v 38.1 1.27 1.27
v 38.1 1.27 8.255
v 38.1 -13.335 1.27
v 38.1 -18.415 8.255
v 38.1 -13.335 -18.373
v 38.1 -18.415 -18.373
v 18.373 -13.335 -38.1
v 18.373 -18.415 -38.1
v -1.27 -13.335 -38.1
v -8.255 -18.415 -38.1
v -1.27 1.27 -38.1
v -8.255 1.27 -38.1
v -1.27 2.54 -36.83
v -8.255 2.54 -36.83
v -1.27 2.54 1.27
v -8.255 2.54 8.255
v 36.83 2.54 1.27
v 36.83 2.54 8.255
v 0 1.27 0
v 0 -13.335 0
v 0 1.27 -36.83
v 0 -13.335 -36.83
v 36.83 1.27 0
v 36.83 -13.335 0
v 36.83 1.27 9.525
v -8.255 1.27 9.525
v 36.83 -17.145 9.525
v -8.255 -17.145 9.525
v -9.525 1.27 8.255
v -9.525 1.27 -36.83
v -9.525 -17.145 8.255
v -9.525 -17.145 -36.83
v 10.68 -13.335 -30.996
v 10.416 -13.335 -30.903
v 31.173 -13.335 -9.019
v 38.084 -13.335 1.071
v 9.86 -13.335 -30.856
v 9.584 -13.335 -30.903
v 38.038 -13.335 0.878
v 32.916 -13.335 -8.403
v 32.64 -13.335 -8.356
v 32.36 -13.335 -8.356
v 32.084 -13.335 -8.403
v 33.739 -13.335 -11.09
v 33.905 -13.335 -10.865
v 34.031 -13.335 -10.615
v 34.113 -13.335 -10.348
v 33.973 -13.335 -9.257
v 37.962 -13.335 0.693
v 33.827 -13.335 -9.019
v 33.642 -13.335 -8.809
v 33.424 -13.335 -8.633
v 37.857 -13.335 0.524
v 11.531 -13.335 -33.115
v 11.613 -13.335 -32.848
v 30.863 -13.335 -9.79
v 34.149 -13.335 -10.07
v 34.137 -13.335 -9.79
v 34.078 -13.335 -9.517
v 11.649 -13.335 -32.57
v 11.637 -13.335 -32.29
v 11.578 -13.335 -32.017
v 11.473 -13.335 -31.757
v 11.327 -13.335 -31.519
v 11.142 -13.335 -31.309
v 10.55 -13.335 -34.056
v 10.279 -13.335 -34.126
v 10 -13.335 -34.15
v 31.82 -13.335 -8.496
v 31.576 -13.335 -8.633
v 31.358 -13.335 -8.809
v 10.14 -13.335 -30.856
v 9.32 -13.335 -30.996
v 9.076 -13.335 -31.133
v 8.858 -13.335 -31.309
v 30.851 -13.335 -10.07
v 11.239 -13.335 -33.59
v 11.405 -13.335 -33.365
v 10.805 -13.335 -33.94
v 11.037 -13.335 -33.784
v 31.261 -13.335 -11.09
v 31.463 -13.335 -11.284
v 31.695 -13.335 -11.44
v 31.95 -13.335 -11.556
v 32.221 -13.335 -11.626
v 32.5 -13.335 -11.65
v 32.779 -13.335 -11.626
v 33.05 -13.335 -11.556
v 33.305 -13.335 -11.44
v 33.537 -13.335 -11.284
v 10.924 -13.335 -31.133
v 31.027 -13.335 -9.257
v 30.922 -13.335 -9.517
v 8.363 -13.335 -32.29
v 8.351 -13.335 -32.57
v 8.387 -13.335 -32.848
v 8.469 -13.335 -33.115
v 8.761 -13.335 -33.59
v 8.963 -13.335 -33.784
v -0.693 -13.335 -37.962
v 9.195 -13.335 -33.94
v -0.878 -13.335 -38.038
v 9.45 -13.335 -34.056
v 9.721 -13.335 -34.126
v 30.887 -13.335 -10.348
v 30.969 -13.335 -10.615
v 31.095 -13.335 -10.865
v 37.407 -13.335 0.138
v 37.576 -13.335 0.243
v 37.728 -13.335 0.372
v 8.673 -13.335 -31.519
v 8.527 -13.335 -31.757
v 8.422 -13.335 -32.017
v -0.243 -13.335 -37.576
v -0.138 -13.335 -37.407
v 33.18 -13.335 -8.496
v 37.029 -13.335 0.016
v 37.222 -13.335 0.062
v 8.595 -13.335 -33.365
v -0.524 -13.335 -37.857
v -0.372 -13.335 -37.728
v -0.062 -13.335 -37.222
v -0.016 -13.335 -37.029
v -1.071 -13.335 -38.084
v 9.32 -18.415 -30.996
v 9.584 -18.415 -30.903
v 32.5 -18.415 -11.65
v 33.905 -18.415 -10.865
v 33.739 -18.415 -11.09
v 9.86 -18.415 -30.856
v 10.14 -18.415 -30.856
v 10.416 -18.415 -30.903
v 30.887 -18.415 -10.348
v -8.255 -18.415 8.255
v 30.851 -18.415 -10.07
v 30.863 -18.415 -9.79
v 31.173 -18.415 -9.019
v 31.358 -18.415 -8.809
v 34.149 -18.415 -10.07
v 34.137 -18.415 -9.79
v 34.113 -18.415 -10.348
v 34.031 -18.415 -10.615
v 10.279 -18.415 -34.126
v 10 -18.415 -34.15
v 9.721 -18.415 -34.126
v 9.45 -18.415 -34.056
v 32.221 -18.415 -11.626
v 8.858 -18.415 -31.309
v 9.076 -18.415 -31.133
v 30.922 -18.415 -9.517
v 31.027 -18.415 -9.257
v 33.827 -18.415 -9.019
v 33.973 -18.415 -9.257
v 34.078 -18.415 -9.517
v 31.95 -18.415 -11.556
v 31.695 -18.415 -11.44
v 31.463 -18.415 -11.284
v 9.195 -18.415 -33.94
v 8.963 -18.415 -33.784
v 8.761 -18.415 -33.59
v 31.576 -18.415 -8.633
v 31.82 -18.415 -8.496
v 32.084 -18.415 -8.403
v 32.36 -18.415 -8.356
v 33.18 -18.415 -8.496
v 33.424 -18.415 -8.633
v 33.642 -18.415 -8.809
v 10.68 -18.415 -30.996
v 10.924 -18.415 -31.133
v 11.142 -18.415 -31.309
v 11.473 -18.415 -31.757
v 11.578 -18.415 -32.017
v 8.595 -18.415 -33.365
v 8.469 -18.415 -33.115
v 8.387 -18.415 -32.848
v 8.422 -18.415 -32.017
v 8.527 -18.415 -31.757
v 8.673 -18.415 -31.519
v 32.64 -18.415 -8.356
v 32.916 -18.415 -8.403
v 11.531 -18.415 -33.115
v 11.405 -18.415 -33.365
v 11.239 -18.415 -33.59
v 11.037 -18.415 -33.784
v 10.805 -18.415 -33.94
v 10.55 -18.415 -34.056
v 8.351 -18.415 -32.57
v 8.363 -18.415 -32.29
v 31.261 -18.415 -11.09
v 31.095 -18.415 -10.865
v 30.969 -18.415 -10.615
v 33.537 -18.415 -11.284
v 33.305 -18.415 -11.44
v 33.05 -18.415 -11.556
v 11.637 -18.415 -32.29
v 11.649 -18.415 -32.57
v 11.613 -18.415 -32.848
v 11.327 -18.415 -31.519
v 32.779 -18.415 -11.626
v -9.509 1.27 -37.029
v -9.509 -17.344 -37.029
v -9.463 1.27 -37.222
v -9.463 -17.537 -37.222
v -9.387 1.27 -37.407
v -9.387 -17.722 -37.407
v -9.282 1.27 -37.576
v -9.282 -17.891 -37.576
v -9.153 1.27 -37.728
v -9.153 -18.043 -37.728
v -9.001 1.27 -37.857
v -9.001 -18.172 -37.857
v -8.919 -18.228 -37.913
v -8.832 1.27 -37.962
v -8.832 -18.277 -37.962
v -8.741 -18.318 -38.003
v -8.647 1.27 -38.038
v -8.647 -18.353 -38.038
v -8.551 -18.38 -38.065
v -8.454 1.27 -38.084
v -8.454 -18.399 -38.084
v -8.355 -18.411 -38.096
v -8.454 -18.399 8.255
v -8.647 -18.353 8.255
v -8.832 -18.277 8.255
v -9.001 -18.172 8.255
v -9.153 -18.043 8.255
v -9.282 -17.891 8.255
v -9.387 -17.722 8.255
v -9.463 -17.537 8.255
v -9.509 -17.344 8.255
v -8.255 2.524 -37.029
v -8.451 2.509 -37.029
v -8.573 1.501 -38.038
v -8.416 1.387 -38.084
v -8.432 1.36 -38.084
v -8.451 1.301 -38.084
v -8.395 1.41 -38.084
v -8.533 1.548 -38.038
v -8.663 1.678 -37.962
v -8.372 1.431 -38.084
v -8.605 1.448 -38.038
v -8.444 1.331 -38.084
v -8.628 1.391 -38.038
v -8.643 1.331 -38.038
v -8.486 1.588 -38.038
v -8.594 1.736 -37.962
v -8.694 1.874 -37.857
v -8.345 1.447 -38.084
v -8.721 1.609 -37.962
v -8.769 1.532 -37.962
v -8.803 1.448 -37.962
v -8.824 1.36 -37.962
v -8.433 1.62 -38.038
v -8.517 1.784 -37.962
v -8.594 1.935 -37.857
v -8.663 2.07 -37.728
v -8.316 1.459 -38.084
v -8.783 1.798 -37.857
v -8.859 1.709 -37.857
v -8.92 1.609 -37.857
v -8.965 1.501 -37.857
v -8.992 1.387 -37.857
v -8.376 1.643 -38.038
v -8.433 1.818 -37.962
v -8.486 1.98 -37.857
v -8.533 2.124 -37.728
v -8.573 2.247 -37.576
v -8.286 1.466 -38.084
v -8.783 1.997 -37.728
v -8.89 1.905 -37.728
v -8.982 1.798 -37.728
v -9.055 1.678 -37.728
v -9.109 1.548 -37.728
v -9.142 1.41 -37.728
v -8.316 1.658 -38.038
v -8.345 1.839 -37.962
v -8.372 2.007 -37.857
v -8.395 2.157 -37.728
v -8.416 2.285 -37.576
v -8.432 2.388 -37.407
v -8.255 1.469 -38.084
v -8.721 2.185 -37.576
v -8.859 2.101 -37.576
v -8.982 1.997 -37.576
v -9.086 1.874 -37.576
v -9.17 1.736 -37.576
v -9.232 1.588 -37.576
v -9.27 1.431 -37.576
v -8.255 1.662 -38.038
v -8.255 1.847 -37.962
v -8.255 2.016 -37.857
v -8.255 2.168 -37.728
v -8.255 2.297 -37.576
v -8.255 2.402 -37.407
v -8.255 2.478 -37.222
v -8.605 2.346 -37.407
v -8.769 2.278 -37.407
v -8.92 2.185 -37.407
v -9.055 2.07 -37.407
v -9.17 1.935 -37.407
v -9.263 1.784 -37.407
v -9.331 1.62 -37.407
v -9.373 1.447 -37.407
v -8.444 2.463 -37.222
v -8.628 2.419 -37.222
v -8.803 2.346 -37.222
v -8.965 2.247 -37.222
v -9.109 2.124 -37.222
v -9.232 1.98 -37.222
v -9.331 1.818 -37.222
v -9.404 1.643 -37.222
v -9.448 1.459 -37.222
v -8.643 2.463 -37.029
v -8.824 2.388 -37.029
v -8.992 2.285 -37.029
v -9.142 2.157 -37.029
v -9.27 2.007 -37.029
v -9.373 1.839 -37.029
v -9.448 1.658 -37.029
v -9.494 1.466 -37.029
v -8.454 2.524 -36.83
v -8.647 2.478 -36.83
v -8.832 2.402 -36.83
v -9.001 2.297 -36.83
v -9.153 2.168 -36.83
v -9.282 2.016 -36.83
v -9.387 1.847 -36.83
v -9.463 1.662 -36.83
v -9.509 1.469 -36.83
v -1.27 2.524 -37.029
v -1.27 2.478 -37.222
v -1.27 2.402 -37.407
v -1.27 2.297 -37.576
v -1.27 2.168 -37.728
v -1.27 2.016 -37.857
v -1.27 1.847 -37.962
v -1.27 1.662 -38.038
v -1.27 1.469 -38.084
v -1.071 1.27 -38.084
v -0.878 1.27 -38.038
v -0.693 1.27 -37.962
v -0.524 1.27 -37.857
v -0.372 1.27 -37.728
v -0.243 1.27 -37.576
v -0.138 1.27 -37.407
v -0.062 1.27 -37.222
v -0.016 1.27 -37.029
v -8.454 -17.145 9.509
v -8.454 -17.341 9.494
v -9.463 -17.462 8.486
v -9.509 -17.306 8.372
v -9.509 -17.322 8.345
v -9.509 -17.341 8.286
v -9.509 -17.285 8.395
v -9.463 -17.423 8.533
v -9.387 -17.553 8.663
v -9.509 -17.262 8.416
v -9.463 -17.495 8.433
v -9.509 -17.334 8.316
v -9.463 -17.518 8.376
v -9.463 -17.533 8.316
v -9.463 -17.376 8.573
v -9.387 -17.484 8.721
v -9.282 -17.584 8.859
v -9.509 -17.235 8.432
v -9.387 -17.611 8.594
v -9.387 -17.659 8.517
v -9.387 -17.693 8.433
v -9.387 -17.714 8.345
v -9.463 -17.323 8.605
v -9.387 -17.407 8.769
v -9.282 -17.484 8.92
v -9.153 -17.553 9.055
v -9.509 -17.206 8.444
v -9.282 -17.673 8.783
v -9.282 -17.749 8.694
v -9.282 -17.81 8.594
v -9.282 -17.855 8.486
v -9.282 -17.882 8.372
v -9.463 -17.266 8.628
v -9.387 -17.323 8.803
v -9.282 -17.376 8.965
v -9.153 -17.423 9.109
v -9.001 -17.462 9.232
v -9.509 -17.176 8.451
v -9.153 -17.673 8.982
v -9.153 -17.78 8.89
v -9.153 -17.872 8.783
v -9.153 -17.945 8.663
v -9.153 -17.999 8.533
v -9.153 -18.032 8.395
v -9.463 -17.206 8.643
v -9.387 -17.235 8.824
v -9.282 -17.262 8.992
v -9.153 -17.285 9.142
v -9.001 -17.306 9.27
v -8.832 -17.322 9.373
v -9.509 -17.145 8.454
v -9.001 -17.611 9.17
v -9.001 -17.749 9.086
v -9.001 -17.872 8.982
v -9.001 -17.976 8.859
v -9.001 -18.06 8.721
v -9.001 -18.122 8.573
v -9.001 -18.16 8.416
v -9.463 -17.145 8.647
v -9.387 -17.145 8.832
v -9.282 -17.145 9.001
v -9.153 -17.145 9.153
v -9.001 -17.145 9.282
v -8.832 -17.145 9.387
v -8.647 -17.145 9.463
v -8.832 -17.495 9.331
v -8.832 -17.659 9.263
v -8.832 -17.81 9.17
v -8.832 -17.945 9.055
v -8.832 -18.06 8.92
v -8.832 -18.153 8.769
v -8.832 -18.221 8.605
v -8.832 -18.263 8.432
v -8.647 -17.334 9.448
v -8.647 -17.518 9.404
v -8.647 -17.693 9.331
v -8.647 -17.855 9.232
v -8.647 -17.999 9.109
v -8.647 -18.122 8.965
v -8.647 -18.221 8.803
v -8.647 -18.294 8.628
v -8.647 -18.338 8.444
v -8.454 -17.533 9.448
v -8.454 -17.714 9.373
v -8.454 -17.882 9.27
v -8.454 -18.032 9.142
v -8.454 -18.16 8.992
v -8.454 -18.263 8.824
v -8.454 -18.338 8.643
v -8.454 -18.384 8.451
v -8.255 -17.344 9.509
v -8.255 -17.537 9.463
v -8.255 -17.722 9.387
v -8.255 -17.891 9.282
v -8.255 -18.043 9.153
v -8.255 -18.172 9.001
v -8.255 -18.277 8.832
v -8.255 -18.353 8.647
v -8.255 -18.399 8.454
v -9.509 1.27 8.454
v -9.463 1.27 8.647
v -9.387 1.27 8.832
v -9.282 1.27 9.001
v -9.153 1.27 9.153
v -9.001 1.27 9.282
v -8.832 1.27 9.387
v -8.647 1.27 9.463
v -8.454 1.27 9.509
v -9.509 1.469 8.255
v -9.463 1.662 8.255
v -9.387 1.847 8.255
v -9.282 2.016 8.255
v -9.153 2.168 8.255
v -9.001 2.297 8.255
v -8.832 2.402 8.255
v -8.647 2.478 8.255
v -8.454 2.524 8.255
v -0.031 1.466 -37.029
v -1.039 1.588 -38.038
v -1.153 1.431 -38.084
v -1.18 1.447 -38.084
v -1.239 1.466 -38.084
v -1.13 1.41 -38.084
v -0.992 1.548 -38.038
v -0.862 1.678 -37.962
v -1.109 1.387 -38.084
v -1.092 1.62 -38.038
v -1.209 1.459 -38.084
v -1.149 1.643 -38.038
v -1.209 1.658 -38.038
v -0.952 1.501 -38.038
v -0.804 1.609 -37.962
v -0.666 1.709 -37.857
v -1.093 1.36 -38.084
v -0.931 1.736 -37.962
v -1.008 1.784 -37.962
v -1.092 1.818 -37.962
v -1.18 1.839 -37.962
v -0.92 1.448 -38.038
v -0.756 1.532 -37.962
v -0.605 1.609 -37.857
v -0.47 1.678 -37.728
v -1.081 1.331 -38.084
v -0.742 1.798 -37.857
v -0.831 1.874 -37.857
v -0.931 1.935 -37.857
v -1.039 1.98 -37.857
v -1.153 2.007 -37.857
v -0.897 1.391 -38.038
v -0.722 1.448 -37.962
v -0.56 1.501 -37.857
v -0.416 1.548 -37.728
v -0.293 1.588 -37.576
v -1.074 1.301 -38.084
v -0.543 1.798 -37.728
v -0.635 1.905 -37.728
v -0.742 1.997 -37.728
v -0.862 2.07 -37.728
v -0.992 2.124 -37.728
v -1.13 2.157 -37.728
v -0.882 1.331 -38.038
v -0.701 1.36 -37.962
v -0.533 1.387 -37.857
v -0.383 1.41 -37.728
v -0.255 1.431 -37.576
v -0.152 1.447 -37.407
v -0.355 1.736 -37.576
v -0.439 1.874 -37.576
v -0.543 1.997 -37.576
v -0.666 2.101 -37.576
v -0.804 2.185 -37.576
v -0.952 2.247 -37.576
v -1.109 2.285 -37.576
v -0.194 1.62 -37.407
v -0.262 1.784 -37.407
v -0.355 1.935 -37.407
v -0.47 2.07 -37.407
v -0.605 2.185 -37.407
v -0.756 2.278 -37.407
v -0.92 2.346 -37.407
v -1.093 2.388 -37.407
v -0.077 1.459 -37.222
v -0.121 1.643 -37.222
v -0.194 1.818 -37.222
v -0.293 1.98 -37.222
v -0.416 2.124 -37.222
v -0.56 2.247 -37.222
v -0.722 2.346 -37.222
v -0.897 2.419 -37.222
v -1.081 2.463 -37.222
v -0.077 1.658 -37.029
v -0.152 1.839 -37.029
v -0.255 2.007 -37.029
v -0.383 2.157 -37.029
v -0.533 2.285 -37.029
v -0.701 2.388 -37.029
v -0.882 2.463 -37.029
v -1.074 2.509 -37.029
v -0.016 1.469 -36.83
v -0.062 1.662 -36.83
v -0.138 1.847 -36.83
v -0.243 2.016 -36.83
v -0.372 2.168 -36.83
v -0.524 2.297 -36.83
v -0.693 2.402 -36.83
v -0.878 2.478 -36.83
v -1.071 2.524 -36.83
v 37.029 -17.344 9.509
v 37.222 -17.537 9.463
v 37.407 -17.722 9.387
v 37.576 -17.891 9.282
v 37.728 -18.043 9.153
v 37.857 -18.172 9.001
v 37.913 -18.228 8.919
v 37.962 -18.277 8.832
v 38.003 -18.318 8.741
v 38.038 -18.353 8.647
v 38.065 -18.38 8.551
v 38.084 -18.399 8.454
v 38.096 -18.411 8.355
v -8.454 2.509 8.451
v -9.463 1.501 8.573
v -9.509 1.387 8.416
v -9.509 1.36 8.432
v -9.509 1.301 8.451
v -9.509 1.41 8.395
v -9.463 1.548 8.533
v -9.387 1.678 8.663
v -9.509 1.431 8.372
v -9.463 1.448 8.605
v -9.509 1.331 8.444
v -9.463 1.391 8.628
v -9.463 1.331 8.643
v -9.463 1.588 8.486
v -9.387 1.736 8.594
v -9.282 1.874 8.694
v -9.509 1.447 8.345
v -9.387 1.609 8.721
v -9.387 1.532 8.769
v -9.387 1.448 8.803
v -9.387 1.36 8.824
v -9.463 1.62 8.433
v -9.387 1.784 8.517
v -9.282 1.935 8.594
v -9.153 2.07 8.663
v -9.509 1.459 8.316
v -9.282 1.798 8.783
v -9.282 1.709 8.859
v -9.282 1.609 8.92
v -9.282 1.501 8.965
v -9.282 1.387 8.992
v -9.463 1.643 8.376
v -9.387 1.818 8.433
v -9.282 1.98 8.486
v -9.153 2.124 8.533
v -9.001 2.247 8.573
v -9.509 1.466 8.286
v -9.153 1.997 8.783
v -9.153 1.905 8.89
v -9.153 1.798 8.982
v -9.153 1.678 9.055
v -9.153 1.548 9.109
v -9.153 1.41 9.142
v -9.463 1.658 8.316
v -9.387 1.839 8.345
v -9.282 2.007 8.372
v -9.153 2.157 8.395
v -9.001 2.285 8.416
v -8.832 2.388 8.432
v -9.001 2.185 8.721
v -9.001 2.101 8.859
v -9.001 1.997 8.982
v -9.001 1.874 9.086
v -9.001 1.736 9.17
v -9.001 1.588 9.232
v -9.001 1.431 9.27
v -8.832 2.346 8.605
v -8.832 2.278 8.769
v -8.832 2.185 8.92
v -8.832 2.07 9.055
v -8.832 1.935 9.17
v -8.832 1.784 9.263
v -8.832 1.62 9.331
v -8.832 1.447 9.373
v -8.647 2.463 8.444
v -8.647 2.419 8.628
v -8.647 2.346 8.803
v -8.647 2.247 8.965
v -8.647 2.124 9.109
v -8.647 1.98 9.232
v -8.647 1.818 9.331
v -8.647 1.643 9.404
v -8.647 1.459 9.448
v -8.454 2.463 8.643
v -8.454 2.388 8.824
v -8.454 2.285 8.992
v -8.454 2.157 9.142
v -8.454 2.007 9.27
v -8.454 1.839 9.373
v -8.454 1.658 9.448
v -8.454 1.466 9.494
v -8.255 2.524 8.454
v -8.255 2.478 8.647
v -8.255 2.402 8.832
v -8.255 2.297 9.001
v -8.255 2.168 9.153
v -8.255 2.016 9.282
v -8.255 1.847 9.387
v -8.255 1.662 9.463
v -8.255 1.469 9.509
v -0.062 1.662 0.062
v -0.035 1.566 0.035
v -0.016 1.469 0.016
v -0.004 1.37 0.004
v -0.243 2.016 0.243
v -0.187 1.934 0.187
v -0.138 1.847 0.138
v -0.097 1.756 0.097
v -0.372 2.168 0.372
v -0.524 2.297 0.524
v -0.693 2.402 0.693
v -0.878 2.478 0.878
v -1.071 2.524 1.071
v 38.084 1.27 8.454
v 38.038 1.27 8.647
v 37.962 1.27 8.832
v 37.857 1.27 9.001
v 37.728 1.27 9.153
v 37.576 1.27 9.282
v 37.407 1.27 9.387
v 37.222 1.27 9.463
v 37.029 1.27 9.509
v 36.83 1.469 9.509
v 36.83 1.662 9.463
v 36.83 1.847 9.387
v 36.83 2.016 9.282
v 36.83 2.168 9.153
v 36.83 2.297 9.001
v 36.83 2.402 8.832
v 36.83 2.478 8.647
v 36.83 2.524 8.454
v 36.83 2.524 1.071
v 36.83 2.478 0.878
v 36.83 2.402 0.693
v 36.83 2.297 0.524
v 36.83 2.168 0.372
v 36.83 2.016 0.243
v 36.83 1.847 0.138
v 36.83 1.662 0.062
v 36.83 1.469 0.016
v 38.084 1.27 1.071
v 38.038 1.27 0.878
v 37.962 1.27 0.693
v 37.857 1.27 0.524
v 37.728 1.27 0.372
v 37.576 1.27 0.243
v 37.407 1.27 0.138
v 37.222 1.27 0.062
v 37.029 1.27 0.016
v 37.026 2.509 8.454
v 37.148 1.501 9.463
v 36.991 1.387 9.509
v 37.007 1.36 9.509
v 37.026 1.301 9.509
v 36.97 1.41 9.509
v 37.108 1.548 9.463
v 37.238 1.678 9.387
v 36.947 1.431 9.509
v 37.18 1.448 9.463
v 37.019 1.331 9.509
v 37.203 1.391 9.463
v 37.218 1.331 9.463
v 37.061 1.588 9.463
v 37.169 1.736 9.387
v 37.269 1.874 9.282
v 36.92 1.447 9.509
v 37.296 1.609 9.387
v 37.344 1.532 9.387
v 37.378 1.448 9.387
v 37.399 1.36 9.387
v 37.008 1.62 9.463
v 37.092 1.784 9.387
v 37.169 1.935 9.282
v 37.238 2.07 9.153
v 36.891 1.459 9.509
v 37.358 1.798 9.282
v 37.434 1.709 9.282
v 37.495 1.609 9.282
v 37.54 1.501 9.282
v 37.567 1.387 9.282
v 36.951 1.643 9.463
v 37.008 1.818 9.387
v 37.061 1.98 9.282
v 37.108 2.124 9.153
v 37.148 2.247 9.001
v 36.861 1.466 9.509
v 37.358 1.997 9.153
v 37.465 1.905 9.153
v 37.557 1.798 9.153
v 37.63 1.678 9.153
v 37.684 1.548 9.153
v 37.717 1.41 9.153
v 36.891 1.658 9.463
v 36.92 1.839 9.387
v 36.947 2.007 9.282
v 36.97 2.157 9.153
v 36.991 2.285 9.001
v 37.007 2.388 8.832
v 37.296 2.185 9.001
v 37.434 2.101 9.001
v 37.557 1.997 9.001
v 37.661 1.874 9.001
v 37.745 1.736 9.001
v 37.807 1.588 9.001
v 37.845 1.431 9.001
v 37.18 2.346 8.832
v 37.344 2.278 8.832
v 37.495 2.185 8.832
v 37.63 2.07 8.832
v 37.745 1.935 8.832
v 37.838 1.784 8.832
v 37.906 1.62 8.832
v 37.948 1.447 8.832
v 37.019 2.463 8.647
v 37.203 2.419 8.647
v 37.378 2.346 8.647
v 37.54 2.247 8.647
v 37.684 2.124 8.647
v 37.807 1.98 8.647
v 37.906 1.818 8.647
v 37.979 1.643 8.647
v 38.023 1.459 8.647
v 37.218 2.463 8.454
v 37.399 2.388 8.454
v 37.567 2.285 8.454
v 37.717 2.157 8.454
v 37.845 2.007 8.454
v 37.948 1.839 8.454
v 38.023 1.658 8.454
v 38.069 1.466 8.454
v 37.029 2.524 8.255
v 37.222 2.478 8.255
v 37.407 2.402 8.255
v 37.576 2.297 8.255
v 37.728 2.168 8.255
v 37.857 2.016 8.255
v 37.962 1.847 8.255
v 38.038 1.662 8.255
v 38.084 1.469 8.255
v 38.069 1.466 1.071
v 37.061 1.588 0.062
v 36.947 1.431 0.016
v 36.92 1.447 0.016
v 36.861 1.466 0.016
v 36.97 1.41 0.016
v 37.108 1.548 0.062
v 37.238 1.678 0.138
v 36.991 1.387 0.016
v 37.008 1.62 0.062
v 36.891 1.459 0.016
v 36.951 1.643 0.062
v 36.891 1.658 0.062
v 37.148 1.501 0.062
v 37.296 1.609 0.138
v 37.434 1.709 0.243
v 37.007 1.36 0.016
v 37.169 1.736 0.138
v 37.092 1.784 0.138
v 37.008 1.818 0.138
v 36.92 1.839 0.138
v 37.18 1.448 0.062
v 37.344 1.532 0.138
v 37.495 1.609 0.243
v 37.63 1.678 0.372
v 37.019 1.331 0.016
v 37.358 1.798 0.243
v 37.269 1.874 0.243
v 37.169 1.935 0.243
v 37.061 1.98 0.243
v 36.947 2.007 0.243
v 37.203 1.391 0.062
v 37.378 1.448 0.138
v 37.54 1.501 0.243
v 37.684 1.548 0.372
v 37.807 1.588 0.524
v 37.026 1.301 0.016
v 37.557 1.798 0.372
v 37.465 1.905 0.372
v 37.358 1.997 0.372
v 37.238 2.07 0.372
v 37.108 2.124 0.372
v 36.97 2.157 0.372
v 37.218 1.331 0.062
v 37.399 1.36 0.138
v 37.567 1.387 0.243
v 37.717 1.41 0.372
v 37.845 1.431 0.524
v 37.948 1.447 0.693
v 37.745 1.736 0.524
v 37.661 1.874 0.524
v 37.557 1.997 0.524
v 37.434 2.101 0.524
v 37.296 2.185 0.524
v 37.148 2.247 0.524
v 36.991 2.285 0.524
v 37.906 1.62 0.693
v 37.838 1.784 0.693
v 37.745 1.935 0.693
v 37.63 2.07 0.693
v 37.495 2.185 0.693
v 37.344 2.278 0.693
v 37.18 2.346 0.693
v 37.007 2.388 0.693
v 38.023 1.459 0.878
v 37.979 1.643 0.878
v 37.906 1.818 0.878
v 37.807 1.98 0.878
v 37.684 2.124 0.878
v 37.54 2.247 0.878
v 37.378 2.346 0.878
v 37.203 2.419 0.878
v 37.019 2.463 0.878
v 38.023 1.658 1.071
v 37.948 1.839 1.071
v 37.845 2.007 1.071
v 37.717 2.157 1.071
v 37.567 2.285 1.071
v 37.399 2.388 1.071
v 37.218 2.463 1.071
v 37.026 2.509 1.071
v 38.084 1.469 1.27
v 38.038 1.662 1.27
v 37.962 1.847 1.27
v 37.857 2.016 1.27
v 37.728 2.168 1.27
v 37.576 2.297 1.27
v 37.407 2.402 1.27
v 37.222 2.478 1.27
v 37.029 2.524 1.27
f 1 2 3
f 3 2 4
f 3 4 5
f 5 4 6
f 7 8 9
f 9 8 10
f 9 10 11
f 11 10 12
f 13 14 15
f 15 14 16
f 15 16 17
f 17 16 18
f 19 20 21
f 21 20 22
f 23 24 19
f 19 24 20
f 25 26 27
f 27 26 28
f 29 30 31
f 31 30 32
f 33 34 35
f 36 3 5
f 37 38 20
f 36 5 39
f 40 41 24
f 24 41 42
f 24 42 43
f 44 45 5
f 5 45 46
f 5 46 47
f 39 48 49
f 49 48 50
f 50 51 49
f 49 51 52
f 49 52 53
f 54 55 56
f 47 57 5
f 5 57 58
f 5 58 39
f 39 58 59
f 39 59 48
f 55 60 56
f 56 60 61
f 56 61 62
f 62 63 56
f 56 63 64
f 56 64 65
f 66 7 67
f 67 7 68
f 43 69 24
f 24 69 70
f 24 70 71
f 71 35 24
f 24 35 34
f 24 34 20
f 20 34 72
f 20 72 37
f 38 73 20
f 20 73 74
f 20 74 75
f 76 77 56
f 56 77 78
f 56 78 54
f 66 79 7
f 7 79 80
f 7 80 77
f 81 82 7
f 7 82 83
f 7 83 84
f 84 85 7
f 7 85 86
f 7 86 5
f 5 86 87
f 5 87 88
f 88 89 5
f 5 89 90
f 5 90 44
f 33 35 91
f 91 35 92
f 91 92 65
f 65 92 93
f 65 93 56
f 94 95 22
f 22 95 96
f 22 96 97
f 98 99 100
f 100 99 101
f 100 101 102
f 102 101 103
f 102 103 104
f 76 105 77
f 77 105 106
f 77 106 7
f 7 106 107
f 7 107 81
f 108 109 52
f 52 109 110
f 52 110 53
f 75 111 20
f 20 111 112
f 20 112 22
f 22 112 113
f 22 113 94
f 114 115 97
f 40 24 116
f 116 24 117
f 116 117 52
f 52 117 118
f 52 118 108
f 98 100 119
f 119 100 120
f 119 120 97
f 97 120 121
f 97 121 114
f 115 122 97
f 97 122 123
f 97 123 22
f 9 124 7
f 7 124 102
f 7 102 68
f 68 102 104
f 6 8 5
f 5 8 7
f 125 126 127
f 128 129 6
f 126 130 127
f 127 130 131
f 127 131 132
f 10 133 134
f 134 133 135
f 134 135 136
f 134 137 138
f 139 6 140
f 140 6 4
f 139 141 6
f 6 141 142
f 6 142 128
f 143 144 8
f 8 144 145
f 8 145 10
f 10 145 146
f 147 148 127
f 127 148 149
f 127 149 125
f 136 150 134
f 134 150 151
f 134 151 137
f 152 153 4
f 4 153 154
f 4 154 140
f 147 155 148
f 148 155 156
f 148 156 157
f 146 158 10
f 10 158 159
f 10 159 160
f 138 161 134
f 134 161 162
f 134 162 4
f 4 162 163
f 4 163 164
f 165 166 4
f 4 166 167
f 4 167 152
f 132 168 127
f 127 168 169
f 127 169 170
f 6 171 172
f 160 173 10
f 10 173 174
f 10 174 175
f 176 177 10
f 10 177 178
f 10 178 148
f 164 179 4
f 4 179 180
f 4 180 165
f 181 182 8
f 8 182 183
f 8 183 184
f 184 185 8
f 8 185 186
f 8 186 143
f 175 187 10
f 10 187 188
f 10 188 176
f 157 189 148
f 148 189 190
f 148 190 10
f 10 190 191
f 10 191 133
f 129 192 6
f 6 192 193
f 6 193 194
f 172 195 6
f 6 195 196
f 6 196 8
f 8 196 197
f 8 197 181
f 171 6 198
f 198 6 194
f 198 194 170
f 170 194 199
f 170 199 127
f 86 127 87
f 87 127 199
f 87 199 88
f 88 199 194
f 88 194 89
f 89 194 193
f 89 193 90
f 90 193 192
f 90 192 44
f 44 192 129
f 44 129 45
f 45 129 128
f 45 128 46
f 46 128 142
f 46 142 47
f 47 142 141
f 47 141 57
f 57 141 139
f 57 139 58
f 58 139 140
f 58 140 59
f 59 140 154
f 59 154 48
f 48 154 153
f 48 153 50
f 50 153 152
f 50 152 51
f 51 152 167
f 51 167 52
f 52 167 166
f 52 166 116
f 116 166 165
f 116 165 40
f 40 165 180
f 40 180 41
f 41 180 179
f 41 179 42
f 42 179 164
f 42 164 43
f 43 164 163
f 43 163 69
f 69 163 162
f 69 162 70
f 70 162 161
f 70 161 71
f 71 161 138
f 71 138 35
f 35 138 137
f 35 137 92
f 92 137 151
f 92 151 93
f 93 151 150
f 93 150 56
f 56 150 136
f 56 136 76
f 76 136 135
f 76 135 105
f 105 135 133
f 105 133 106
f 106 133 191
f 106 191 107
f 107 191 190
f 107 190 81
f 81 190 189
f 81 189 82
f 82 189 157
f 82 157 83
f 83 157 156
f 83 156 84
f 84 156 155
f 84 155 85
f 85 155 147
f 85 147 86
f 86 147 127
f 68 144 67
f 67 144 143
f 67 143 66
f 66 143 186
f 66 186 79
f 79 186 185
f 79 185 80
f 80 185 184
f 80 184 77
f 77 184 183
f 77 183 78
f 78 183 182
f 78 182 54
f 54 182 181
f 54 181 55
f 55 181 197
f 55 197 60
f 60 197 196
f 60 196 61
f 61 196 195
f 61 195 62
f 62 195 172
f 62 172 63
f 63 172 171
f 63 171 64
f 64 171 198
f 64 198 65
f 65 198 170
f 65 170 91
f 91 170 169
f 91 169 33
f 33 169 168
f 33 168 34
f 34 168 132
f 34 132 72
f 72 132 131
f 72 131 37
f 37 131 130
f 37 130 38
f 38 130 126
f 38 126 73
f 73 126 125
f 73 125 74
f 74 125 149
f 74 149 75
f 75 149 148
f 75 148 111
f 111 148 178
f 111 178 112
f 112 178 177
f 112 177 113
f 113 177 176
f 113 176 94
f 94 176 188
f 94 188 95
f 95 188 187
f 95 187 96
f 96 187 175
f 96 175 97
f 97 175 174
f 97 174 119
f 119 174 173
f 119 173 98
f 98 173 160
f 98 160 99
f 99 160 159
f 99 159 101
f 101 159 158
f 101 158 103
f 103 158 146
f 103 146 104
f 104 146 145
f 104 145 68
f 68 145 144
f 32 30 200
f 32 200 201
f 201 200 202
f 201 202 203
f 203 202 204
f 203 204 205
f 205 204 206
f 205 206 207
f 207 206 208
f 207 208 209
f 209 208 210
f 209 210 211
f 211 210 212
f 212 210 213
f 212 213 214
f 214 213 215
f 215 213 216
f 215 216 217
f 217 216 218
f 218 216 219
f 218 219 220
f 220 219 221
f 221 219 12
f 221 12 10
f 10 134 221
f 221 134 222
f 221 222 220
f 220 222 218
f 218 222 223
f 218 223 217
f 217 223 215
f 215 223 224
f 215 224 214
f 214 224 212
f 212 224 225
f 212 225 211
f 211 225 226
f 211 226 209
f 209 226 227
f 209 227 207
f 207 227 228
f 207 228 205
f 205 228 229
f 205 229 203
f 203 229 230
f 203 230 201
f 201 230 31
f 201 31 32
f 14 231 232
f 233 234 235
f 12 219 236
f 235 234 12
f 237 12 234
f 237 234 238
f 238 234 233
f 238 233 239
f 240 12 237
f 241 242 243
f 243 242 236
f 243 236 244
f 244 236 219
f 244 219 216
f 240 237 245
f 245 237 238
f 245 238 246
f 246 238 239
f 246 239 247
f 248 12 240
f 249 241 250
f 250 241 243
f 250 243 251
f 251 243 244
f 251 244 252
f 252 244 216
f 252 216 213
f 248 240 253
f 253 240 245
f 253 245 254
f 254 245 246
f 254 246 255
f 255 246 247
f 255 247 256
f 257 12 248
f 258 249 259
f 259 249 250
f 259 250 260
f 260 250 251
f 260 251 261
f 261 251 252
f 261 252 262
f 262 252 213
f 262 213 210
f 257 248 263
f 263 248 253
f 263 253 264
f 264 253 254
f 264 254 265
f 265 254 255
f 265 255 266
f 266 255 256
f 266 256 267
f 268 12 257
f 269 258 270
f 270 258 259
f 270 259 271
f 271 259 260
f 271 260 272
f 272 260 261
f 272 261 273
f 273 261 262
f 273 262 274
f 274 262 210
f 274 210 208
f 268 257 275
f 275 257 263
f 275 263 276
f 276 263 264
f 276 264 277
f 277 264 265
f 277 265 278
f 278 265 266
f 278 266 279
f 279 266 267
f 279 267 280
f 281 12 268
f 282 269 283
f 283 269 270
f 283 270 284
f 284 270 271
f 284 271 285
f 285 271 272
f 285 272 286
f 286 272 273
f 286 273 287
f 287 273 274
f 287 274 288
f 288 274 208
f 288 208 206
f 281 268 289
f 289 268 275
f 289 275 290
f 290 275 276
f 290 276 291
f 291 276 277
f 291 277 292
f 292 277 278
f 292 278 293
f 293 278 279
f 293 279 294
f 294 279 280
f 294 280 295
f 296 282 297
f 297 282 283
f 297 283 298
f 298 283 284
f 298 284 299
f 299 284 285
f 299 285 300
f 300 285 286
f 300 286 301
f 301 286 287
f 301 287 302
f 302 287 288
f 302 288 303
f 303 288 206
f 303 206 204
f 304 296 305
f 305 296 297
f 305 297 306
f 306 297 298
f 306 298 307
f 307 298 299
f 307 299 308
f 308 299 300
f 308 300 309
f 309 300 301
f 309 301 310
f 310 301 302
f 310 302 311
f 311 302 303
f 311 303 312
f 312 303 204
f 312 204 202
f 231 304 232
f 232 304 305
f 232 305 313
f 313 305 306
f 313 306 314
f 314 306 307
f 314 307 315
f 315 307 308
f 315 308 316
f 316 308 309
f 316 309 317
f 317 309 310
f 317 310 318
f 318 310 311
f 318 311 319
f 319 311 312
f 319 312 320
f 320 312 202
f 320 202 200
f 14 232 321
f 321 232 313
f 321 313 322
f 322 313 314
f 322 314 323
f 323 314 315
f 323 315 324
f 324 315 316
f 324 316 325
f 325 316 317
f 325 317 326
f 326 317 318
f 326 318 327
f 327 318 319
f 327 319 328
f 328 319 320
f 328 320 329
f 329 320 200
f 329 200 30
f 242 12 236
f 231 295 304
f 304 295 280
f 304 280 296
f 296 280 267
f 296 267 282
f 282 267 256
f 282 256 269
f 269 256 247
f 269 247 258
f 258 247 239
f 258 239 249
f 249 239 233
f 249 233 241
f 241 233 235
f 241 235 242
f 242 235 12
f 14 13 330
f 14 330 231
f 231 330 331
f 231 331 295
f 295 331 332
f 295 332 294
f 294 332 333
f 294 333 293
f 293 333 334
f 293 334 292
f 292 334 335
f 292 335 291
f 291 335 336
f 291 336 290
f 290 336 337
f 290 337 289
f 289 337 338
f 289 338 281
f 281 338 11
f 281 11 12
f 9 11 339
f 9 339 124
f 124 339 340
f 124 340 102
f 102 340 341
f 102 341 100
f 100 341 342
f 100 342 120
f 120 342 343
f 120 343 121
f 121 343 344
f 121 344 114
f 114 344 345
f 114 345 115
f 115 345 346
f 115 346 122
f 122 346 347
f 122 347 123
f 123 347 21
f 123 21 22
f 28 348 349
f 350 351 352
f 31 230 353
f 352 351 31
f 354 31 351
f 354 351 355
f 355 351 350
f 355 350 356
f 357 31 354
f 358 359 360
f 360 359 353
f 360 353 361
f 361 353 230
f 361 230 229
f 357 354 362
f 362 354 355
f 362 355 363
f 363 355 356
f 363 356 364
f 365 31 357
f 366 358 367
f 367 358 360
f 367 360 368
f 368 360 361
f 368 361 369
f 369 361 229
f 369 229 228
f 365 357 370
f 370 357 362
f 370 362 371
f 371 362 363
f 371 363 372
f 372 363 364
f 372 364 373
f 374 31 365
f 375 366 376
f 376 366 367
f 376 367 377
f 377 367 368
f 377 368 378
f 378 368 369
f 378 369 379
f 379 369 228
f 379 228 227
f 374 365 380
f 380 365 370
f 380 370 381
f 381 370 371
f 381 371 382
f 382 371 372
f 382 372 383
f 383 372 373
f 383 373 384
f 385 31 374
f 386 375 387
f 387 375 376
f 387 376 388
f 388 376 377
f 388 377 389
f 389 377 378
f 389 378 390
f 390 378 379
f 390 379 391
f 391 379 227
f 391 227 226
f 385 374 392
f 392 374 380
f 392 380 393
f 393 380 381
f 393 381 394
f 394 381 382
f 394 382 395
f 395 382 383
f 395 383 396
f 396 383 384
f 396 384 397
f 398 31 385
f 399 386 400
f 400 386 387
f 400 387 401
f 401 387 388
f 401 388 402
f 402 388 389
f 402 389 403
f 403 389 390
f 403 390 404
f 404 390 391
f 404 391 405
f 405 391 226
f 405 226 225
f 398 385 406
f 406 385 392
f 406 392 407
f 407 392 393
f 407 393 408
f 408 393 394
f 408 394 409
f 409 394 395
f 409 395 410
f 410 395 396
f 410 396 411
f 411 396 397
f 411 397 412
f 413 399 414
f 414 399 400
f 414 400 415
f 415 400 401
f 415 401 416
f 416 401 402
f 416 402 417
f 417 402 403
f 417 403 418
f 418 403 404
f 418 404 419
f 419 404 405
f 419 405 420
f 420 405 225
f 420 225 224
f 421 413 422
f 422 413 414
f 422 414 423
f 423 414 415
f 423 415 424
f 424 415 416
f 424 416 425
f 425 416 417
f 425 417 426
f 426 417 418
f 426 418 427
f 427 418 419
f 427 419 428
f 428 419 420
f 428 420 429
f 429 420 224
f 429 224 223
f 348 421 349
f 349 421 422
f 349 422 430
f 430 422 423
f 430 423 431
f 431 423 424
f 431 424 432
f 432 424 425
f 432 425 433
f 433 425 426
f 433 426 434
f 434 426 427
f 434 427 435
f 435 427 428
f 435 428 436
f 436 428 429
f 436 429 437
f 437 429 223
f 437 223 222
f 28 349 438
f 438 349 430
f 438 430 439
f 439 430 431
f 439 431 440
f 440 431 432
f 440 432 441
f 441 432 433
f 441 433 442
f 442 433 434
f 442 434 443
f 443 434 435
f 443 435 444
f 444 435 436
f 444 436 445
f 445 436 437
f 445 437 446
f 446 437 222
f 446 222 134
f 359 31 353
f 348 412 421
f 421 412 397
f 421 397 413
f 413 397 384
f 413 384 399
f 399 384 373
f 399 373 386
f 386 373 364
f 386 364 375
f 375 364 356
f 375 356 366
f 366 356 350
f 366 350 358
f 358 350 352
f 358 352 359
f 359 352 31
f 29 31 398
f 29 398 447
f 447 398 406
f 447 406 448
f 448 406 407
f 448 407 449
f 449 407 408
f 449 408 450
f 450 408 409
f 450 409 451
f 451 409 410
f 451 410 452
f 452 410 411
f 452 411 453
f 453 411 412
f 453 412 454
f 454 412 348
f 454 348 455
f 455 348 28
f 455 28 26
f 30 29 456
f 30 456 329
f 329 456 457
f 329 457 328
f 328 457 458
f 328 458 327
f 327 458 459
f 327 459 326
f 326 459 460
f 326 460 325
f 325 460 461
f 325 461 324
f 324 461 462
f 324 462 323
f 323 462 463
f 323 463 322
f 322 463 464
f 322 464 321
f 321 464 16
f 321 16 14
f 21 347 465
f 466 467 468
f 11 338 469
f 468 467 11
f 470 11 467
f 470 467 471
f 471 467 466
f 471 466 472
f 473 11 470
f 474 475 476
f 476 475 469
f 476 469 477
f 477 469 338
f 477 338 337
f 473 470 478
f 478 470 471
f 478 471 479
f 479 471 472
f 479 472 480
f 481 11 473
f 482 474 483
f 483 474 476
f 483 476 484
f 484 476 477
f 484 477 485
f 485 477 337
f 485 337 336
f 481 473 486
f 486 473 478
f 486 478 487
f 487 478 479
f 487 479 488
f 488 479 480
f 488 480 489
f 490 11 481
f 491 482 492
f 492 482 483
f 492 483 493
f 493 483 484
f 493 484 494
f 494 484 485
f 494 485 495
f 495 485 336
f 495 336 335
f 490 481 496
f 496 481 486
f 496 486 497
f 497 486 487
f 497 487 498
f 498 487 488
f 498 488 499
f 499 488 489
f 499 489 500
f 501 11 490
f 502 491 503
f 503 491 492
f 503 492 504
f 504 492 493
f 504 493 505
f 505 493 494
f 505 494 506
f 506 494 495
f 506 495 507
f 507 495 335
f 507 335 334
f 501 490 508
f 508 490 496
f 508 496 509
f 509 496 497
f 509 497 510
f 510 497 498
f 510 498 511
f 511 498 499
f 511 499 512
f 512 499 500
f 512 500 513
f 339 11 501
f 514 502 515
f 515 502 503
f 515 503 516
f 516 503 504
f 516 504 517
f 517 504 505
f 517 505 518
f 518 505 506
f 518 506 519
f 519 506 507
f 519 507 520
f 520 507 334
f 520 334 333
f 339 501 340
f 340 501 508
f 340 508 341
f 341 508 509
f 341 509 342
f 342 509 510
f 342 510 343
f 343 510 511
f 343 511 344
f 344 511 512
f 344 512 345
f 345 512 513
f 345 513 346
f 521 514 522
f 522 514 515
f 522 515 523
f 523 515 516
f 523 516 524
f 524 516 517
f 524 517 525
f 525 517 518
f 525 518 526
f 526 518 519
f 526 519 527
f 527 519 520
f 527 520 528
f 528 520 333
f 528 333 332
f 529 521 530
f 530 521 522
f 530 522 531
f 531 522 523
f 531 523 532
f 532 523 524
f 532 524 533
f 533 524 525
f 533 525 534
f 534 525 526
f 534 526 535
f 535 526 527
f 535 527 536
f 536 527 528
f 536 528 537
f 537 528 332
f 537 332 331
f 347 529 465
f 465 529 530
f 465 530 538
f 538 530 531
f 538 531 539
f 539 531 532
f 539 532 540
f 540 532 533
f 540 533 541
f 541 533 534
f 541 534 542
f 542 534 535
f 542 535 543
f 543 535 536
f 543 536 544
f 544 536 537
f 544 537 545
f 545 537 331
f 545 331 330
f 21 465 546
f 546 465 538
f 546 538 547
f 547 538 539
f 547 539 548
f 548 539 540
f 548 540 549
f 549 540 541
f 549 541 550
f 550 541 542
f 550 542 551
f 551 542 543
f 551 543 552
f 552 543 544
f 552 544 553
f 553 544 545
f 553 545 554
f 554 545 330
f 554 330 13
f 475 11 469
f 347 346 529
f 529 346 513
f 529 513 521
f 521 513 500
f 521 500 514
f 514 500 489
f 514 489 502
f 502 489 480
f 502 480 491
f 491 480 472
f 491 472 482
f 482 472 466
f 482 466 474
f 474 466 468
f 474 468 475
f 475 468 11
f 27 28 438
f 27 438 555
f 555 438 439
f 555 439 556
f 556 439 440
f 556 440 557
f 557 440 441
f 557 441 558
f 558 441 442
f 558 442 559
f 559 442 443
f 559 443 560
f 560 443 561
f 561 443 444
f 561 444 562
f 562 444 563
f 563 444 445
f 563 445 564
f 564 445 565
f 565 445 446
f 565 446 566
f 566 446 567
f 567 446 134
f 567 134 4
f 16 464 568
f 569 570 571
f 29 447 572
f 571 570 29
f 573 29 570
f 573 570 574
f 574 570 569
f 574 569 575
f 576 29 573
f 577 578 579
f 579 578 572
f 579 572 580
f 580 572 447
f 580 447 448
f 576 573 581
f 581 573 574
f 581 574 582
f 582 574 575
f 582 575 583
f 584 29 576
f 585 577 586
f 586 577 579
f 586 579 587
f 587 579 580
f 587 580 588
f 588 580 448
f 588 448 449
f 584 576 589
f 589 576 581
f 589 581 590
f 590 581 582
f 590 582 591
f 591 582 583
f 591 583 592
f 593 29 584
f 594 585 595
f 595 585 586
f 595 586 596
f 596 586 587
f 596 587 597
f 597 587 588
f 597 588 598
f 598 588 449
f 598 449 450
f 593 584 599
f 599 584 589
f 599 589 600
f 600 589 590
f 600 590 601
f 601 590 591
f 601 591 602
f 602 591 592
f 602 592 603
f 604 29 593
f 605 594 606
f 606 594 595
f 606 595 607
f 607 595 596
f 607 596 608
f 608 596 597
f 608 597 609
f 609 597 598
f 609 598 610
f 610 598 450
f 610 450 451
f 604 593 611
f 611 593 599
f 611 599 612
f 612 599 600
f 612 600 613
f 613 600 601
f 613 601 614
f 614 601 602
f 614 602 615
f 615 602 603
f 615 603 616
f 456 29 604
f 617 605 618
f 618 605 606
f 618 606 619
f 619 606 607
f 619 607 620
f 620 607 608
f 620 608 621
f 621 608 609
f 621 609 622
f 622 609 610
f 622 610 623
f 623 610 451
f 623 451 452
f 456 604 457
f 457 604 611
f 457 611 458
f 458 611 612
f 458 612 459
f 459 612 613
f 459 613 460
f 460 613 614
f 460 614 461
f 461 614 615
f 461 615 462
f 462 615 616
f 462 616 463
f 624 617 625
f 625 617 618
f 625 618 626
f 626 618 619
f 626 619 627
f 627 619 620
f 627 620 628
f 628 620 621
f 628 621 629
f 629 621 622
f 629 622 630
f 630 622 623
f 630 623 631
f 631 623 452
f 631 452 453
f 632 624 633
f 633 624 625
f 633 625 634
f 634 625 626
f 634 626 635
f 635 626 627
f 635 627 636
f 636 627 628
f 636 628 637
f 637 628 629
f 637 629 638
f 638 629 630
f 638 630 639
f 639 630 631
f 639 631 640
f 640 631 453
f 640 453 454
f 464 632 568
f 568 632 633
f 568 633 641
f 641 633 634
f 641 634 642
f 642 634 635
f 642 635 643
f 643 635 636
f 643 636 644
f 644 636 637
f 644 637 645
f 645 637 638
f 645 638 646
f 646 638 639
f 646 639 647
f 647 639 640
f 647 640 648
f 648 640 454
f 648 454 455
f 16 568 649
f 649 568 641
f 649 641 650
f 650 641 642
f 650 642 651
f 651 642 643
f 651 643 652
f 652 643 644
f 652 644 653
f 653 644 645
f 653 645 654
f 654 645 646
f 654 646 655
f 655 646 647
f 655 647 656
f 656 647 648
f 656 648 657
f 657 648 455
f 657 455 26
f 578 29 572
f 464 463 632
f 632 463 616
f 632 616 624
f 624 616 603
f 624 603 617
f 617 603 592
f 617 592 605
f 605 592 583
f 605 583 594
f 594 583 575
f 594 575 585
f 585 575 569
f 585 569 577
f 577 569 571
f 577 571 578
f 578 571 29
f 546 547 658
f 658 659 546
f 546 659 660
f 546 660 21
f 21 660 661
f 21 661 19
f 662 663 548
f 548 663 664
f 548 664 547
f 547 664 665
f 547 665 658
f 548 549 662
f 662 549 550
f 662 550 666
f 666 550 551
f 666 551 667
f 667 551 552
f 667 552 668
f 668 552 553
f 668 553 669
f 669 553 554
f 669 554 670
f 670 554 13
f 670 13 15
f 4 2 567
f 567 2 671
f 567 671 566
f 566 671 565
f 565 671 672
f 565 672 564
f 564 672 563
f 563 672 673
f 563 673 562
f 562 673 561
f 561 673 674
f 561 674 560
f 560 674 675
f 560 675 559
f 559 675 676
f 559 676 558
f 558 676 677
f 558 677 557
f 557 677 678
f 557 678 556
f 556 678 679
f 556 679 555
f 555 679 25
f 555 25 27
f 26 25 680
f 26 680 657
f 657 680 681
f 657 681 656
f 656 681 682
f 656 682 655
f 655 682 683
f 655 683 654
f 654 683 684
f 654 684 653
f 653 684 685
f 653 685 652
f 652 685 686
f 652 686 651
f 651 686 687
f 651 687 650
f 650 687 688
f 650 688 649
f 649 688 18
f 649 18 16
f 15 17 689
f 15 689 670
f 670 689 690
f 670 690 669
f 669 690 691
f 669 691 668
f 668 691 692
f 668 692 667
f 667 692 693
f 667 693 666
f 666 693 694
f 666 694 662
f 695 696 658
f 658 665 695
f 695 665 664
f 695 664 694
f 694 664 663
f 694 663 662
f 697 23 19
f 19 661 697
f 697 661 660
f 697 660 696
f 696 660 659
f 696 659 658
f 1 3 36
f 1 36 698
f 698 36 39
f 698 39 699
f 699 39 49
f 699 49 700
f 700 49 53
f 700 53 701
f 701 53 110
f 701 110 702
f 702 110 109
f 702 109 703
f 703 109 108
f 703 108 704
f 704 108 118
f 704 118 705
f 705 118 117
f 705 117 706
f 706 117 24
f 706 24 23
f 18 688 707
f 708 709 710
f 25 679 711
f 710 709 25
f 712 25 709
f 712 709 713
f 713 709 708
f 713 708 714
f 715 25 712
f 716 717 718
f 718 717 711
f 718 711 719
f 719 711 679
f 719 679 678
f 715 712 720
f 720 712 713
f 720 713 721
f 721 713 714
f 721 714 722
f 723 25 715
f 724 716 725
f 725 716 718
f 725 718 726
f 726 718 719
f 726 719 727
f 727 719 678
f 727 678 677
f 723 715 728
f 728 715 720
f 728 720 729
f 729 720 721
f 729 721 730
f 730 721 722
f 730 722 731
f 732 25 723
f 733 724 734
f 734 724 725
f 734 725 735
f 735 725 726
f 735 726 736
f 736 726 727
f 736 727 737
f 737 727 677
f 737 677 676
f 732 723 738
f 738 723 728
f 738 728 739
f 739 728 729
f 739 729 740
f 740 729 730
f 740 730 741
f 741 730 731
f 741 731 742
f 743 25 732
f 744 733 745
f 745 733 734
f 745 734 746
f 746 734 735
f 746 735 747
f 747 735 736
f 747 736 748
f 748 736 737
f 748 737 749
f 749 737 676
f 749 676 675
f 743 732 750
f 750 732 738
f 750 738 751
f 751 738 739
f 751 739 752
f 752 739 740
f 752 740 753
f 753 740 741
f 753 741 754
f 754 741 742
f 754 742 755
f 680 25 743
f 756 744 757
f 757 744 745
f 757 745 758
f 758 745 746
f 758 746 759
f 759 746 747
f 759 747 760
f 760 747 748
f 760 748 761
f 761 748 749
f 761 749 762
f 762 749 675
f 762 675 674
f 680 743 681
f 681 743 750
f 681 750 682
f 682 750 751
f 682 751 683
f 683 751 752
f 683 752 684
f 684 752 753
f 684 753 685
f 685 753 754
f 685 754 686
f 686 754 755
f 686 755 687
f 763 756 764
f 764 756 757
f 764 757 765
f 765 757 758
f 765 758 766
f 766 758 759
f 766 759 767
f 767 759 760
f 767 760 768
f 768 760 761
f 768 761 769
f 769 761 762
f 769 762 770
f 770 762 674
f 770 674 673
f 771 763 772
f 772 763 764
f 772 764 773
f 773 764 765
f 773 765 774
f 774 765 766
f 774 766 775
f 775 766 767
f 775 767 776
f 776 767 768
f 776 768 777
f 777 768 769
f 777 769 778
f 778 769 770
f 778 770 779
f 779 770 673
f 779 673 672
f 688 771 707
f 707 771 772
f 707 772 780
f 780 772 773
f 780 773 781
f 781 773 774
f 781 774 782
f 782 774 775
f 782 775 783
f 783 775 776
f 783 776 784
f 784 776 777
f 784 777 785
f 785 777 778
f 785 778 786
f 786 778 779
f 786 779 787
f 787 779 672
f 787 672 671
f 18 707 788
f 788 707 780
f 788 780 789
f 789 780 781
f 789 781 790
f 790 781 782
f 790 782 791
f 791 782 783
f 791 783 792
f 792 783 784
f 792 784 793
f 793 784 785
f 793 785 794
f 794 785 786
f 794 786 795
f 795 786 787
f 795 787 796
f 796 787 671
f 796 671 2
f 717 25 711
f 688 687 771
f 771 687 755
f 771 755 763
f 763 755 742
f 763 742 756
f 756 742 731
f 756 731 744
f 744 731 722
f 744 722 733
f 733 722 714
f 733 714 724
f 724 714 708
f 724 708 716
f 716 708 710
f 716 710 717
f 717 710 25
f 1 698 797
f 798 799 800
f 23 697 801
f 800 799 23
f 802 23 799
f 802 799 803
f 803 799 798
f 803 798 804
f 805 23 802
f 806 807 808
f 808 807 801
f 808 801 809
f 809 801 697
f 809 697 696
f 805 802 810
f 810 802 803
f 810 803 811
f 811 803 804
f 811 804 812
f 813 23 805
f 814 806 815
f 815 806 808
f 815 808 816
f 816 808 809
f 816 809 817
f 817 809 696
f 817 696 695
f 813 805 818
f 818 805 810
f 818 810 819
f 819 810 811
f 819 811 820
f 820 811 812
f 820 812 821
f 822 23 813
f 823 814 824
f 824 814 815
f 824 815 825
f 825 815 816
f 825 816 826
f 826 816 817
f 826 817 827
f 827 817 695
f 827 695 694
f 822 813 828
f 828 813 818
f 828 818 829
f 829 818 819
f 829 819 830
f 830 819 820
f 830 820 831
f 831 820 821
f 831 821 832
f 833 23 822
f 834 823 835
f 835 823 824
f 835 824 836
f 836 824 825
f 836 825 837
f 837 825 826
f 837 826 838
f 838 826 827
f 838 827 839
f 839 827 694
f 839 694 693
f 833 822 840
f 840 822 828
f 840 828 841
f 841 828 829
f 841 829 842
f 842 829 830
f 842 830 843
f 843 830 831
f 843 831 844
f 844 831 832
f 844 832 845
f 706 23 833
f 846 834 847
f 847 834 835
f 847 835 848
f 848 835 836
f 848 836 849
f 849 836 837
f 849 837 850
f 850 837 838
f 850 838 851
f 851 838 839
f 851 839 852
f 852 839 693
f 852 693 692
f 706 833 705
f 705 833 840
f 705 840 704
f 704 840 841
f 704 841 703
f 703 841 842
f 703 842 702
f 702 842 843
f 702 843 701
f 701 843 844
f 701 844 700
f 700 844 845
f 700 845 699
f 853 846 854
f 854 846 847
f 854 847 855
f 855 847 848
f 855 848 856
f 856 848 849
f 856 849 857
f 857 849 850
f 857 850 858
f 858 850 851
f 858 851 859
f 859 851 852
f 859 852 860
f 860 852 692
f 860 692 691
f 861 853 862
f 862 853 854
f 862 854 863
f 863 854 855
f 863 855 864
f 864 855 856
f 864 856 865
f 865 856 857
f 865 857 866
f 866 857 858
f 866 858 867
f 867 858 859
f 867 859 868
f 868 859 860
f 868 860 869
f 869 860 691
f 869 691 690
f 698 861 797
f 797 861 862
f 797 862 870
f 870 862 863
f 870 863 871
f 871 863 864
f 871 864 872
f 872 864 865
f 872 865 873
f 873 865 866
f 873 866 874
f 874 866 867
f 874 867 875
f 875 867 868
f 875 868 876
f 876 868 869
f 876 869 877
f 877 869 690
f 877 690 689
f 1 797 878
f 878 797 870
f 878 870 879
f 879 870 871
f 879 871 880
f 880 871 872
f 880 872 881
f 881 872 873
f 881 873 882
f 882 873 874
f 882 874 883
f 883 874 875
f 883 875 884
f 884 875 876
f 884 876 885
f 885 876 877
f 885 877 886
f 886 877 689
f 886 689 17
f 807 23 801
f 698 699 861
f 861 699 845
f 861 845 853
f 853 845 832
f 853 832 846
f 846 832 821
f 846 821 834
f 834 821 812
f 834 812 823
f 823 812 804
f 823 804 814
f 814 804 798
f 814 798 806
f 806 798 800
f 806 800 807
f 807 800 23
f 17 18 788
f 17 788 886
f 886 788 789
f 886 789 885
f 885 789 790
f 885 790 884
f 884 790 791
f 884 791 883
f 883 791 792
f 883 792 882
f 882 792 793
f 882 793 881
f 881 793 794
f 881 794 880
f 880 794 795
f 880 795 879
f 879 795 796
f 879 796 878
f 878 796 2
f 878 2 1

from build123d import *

# Parameters (mm, degrees)
BOSS_EXTRUDE1_DEPTH      = 2.54
SKETCH2_W                = 9.525
SKETCH2_H                = 38.1
BOSS_EXTRUDE2_DEPTH      = 15.875
BOSS_EXTRUDE3_DEPTH      = 5.08
M3_CLEARANCE_HOLE1_D     = 3.3
M3_CLEARANCE_HOLE1_DEPTH = 12.7
M3_CLEARANCE_HOLE1_TIP   = 0.991420021
SKETCH7_W                = 35.71875
SKETCH7_H                = 2.38125
CUT_EXTRUDE1_DEPTH       = 2.54
FILLET1_R                = 1.27


with BuildPart() as part:
    # Sketch1 → Boss-Extrude1 (new body)
    with BuildSketch(Plane(origin=(0, 0, 0), x_dir=(1, 0, 0), z_dir=(0, 1, 0))):
        Polygon((0, 0), (38.1, 0), (38.1, 2.38125), (2.38125, 2.38125), (2.38125, 38.1), (0, 38.1), align=None)
    extrude(amount=BOSS_EXTRUDE1_DEPTH)

    # Sketch2 → Boss-Extrude2 (add)
    with BuildSketch(Plane(origin=(0, 2.54, 0), x_dir=(1, 0, 0), z_dir=(0, 1, 0))):
        with Locations((-4.7625, 19.05)):
            Rectangle(SKETCH2_W, SKETCH2_H)
        Polygon((0, 0), (-9.525, 0), (-9.525, -9.525), (38.1, -9.525), (38.1, 0), align=None)
    extrude(amount=-BOSS_EXTRUDE2_DEPTH)

    # Sketch3 → Boss-Extrude3 (add)
    with BuildSketch(Plane(origin=(0, -13.335, 0), x_dir=(-1, 0, 0), z_dir=(0, -1, 0))):
        Polygon((9.525, -9.525), (-38.1, -9.525), (-38.1, 18.373079092), (-18.373079092, 38.1), (9.525, 38.1), align=None)
    extrude(amount=BOSS_EXTRUDE3_DEPTH)

    # M3 Clearance Hole1
    with Locations(Plane(origin=(0, -18.415, 0), x_dir=(-1, 0, 0), z_dir=(0, -1, 0))):
        with Locations((-10, 32.5), (-32.5, 10)):
            Hole(M3_CLEARANCE_HOLE1_D / 2, depth=M3_CLEARANCE_HOLE1_DEPTH)
            with Locations((0, 0, -(M3_CLEARANCE_HOLE1_DEPTH + M3_CLEARANCE_HOLE1_TIP / 2))):  # 118° drill point
                Cone(0, M3_CLEARANCE_HOLE1_D / 2, M3_CLEARANCE_HOLE1_TIP, mode=Mode.SUBTRACT)

    # Sketch7 → Cut-Extrude1 (cut)
    with BuildSketch(Plane(origin=(0, 2.54, 0), x_dir=(1, 0, 0), z_dir=(0, 1, 0))):
        with Locations((20.240625, 1.190625)):
            Rectangle(SKETCH7_W, SKETCH7_H)
        Polygon((0, 0), (2.38125, 0), (2.38125, 2.38125), (2.38125, 38.1), (0, 38.1), align=None)
    extrude(amount=-CUT_EXTRUDE1_DEPTH, mode=Mode.SUBTRACT)

    # Fillet1
    fillet1_edges = [part.edges().sort_by_distance(p)[0] for p in [
        (38.1, 2.54, 4.7625),
        (0, -5.3975, -38.1),
        (-9.525, -7.9375, -38.1),
        (38.1, -5.3975, 0),
        (14.2875, 2.54, 9.525),
        (38.1, -7.9375, 9.525),
        (-9.525, -7.9375, 9.525),
        (-9.525, 2.54, -14.2875),
        (-9.525, -18.415, -14.2875),
        (14.2875, -18.415, 9.525),
        (-4.7625, 2.54, -38.1),
        (0, 2.54, -19.05),
        (19.05, 2.54, 0),
    ]]
    fillet(fillet1_edges, radius=FILLET1_R)


solid = part.part
